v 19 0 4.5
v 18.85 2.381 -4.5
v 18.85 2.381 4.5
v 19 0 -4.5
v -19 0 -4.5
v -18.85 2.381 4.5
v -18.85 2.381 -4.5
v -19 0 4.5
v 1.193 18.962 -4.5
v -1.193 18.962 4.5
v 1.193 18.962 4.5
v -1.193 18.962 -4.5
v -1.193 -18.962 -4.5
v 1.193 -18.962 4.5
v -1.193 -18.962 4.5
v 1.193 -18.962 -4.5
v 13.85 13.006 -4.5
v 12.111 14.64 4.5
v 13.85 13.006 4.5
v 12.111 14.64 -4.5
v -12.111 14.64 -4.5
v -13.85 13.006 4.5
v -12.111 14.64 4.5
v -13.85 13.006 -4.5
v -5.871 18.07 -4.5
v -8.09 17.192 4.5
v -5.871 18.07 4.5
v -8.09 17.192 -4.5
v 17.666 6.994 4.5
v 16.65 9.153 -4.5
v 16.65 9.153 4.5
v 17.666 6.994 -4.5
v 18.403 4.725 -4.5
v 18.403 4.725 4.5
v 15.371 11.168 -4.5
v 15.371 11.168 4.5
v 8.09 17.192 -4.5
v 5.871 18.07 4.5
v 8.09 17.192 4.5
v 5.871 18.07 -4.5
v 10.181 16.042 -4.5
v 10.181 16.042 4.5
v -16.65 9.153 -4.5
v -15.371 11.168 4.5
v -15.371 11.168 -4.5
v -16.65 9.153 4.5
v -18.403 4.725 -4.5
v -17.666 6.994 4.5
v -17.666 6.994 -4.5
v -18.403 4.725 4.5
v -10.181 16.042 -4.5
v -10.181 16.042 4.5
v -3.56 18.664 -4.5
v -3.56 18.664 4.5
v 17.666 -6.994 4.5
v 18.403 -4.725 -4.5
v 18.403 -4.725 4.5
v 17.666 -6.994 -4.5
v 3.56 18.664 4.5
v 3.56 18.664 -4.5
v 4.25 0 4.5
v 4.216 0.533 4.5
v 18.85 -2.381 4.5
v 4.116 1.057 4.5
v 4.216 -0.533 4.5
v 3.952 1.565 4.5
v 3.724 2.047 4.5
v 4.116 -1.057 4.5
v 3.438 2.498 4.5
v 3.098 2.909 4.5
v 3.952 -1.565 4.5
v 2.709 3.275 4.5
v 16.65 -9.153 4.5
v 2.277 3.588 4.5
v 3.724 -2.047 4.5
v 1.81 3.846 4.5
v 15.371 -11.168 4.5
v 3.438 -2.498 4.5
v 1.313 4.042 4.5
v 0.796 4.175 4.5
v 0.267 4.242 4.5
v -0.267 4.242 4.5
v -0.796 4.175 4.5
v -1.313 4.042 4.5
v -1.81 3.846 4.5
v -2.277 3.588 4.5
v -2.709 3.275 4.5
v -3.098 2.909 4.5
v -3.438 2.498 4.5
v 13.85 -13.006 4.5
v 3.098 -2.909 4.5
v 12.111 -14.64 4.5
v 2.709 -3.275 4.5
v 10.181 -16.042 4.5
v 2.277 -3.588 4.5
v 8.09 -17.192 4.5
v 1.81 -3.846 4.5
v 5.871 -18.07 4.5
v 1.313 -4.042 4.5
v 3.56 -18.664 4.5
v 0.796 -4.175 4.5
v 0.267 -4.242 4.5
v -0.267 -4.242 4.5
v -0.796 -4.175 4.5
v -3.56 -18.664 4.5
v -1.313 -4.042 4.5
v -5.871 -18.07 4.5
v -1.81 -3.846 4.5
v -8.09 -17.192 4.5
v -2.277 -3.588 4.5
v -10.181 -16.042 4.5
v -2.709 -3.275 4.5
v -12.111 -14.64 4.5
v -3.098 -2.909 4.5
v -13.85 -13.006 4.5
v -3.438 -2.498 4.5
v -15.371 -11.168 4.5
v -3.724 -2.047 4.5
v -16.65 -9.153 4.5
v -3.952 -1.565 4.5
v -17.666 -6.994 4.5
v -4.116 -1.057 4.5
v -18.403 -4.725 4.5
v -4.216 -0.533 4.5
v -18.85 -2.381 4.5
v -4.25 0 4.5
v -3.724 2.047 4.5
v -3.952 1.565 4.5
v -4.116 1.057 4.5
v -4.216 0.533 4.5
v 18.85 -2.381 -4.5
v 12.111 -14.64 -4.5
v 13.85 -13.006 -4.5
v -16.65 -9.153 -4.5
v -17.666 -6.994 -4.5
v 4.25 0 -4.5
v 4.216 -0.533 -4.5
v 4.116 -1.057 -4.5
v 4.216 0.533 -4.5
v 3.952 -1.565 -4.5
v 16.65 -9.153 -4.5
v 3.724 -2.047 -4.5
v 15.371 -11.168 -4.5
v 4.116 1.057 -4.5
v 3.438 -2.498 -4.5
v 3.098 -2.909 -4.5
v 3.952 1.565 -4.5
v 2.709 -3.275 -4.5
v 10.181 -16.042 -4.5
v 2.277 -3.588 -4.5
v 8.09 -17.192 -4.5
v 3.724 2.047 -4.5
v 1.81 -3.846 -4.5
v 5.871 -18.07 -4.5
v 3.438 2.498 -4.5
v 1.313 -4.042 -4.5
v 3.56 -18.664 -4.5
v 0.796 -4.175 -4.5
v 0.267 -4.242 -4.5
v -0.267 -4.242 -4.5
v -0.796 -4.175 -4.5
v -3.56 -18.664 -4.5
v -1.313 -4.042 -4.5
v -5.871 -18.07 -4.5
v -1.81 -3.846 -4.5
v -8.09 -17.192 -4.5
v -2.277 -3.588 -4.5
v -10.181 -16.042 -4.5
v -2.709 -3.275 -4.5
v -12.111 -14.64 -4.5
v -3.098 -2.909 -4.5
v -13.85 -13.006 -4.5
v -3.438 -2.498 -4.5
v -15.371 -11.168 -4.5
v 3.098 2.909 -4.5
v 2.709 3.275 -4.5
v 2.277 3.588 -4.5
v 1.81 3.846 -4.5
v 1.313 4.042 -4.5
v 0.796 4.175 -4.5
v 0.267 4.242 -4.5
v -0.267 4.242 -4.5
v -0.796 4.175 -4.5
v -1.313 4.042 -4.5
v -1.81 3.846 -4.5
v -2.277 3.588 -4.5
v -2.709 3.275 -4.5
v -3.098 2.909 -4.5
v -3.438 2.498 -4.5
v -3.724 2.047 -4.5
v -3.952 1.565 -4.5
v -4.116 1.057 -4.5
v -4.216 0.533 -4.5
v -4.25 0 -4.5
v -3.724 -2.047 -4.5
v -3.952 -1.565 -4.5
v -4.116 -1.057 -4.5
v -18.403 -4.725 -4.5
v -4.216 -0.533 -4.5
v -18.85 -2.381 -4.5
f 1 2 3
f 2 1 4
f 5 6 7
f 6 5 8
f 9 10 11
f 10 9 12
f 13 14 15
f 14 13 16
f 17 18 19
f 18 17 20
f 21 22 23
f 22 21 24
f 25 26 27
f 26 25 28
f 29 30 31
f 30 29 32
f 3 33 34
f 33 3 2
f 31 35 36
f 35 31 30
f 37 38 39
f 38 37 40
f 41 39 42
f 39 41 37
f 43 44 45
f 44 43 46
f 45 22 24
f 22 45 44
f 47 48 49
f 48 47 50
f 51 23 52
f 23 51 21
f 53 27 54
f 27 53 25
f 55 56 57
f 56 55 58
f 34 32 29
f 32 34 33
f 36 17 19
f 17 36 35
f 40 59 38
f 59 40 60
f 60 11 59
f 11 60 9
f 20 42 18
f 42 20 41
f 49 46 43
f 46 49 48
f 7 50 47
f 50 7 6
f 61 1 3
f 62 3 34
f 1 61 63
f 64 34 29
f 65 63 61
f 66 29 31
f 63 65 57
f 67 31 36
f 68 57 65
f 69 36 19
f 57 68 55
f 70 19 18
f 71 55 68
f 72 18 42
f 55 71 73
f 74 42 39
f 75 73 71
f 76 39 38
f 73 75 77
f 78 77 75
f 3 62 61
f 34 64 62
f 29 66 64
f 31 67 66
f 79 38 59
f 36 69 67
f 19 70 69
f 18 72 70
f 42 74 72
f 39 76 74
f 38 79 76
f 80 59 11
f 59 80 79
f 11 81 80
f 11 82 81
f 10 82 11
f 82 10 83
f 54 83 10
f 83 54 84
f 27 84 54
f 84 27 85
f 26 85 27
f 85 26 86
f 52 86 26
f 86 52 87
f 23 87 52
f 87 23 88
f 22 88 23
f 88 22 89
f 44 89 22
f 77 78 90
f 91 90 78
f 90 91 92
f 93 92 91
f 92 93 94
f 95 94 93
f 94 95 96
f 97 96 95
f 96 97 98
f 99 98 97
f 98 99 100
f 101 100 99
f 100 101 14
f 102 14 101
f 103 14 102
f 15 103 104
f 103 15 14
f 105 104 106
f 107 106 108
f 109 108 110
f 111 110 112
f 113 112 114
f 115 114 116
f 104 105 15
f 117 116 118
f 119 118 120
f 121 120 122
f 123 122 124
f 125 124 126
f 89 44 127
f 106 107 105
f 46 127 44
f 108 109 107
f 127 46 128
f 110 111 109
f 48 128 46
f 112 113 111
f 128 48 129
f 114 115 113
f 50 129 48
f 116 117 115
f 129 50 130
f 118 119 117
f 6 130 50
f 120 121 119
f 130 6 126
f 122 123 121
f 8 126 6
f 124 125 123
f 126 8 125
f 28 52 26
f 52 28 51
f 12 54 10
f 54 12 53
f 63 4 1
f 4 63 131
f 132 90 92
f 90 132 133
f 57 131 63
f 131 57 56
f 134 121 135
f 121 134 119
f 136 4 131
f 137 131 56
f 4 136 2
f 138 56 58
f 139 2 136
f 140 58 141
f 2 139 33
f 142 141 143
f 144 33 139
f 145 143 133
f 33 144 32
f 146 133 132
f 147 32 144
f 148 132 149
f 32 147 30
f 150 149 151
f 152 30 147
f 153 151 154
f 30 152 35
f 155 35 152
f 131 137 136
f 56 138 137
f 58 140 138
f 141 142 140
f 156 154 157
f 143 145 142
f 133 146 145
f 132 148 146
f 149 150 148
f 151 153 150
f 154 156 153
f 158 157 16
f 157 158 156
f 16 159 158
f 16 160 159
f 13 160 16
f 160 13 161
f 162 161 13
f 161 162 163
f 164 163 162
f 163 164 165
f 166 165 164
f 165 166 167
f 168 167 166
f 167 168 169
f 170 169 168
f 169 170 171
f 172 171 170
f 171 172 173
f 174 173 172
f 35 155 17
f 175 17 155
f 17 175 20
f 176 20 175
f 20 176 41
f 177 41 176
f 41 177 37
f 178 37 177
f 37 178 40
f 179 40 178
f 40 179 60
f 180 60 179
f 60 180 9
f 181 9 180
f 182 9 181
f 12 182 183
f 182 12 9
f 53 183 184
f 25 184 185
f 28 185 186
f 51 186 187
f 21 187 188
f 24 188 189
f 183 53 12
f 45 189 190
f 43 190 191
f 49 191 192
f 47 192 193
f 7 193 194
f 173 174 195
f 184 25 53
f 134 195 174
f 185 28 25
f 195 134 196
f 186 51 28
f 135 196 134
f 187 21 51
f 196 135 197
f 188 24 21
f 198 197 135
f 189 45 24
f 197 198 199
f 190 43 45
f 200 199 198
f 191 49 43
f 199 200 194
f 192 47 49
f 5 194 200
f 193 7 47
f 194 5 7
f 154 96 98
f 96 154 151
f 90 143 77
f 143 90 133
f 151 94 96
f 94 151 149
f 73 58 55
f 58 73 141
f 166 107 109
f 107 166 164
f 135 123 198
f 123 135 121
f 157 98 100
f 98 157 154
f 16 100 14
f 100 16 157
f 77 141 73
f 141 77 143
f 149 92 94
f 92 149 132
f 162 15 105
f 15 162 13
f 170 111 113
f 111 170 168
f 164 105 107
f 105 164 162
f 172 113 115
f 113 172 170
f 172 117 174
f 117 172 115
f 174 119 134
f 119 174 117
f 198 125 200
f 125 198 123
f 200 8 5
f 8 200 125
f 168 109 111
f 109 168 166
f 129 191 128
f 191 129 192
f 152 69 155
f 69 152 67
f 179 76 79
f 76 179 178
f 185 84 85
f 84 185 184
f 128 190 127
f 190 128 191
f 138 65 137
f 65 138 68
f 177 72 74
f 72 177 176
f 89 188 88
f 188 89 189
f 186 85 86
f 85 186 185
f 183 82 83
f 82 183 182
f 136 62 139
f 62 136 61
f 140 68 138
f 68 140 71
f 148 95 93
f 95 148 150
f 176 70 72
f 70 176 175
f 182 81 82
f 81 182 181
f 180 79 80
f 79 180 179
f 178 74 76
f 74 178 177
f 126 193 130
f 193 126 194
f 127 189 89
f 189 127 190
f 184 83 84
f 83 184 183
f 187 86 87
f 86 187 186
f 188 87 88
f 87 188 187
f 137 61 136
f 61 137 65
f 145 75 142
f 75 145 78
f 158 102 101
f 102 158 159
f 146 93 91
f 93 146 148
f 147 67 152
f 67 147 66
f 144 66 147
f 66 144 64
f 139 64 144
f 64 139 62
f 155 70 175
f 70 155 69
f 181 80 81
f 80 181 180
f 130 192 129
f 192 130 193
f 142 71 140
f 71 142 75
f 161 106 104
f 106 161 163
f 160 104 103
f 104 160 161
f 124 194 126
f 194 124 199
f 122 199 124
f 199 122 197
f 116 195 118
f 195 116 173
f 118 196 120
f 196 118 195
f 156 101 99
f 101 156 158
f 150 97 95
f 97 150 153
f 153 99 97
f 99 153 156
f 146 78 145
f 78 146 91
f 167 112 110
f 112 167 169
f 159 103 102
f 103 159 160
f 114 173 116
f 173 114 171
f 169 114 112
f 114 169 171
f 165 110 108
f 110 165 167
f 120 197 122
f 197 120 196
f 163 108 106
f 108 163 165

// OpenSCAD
$fn = 50;


difference() {
	union() {
		translate(v = [0, 0, -4.5000000000]) {
			cylinder(h = 9, r = 19.0000000000);
		}
	}
	union() {
		translate(v = [0, 0, -100.0000000000]) {
			cylinder(h = 200, r = 4.2500000000);
		}
	}
}
